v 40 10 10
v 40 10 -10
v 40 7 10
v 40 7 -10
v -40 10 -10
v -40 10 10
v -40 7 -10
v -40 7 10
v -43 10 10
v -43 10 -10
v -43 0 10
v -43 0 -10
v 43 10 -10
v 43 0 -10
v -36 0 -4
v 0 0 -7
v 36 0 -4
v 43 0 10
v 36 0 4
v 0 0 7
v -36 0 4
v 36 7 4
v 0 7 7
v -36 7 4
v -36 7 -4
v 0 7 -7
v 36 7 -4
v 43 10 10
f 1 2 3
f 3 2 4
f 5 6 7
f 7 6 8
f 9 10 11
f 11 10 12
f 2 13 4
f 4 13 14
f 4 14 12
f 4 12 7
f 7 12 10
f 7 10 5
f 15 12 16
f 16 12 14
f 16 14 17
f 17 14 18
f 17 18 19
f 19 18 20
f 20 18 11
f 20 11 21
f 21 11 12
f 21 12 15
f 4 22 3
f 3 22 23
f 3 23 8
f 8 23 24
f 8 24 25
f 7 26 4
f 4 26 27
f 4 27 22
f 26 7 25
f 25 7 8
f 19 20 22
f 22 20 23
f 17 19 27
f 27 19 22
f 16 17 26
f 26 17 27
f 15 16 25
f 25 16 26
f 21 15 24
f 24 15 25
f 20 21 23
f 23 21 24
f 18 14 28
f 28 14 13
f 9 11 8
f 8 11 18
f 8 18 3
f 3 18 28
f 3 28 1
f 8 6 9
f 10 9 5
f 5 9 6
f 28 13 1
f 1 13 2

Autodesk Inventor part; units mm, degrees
ref_plane "YZ Plane" through (0, 0, 0) normal (1, 0, 0) x (0, 1, 0)
ref_plane "XZ Plane" through (0, 0, 0) normal (0, 1, 0) x (-1, 0, 0)
ref_plane "XY Plane" through (0, 0, 0) normal (0, 0, 1) x (1, 0, 0)
sketch "Sketch1" plane through (0, 0, 0) normal (0, 1, 0) x (-1, 0, 0)
  line L0 (0, 0) -> (0, 38)
  line L1 (0, 38) -> (0, 43)
  line L2 (0, 38) -> (2, 38)
  line L3 (2, 38) -> (-2, 38)
  line L4 (-2, 38) -> (0, 43)
  line L5 (2, 38) -> (0, 43)
  line L6 (-2, 38) -> (-2, 2)
  line L7 (2, 2) -> (2, 38)
  line L8 (-2, 2) -> (-2, 3)
  line L9 (2, 2) -> (2, 0)
  line L10 (-2, 2) -> (-2, 0)
  line L11 (-2, 0) -> (2, 0)
  line L12 (0, 0) -> (-2, 1)
  line L13 (0, 38) -> (0, 42)
  line L14 (0, 42) -> (-0.4, 42)
  line L15 (0.4, 42) -> (0, 42)
  line L16 (0, 0) -> (0, 10)
  line L17 (0, 10) -> (0, 0)
  line L18 (0, 0) -> (-40, 0)
  line L19 (-40, 0) -> (-40, -10)
  line L20 (-40, 10) -> (40, 10)
  line L21 (40, 10) -> (40, -10)
  line L22 (40, -10) -> (-40, -10)
  line L23 (-40, -10) -> (-40, 10)
  line L24 (40, -10) -> (38, -10)
  line L25 (38, -10) -> (43, -10)
  line L26 (43, -10) -> (43, 10)
  line L27 (43, 10) -> (38, 10)
  line L28 (38, 10) -> (38, -10)
  line L29 (-40, -10) -> (-38, -10)
  line L30 (-38, -10) -> (-43, -10)
  line L31 (-43, -10) -> (-43, 10)
  line L32 (-43, 10) -> (-38, 10)
  line L33 (-38, 10) -> (-38, -10)
  point P0 (0, 2)
  dimension "d0" = 38
  dimension "d1" = 5
  dimension "d2" = 2
  dimension "d3" = 4
  dimension "d6" = 1
  dimension "d30" = 4
  dimension "d31" = 10
  dimension "d32" = 40
  dimension "d33" = 10
  dimension "d34" = 80
  dimension "d37" = 2
  dimension "d38" = 5
  dimension "d39" = 2
  dimension "d40" = 5
extrude "Extrusion1" add sketch "Sketch1" along normal blind 7 contours L12 L10 L6 L20 L0 | L11 L9 L7 L20 L28 L22 L33 L18 | L0 L20 L7 L9 L11 | L11 L10 L12 | L18 L33 L20 L6 L10 | L33 L22 L19 L18 | L18 L23 L20 L33 | L20 L21 L22 L28 | L19 L30 L31 L32 L23 | L27 L26 L25 L21
sketch "Sketch4" plane through (0, 7, 0) normal (0, 1, 0) x (1, 0, 0)
  circle A0 centre (0, 0) radius 1.5
  line L0 (0, 0) -> (-36, 0)
  line L1 (-36, 0) -> (-36, -4)
  line L2 (0, 0) -> (0, -7)
  line L3 (-36, -4) -> (0, -7)
  line L4 (-36, 0) -> (-36, 4)
  line L5 (0, 0) -> (0, 7)
  line L6 (-36, 4) -> (0, 7)
  line L7 (0, 0) -> (36, 0)
  line L8 (36, 0) -> (36, -4)
  line L9 (36, -4) -> (0, -7)
  line L10 (36, 4) -> (0, 7)
  line L11 (36, 0) -> (36, 4)
  dimension "d20" = 3
  dimension "d26" = 36
  dimension "d28" = 4
  dimension "d29" = 7
extrude "Extrusion5" cut sketch "Sketch4" against normal through all
extrude "Extrusion6" add sketch "Sketch1" along normal blind 3 from surface at 7 contours L19 L30 L31 L32 L23 | L27 L26 L25 L21
properties part number "testing deadbolt arm adapter"
